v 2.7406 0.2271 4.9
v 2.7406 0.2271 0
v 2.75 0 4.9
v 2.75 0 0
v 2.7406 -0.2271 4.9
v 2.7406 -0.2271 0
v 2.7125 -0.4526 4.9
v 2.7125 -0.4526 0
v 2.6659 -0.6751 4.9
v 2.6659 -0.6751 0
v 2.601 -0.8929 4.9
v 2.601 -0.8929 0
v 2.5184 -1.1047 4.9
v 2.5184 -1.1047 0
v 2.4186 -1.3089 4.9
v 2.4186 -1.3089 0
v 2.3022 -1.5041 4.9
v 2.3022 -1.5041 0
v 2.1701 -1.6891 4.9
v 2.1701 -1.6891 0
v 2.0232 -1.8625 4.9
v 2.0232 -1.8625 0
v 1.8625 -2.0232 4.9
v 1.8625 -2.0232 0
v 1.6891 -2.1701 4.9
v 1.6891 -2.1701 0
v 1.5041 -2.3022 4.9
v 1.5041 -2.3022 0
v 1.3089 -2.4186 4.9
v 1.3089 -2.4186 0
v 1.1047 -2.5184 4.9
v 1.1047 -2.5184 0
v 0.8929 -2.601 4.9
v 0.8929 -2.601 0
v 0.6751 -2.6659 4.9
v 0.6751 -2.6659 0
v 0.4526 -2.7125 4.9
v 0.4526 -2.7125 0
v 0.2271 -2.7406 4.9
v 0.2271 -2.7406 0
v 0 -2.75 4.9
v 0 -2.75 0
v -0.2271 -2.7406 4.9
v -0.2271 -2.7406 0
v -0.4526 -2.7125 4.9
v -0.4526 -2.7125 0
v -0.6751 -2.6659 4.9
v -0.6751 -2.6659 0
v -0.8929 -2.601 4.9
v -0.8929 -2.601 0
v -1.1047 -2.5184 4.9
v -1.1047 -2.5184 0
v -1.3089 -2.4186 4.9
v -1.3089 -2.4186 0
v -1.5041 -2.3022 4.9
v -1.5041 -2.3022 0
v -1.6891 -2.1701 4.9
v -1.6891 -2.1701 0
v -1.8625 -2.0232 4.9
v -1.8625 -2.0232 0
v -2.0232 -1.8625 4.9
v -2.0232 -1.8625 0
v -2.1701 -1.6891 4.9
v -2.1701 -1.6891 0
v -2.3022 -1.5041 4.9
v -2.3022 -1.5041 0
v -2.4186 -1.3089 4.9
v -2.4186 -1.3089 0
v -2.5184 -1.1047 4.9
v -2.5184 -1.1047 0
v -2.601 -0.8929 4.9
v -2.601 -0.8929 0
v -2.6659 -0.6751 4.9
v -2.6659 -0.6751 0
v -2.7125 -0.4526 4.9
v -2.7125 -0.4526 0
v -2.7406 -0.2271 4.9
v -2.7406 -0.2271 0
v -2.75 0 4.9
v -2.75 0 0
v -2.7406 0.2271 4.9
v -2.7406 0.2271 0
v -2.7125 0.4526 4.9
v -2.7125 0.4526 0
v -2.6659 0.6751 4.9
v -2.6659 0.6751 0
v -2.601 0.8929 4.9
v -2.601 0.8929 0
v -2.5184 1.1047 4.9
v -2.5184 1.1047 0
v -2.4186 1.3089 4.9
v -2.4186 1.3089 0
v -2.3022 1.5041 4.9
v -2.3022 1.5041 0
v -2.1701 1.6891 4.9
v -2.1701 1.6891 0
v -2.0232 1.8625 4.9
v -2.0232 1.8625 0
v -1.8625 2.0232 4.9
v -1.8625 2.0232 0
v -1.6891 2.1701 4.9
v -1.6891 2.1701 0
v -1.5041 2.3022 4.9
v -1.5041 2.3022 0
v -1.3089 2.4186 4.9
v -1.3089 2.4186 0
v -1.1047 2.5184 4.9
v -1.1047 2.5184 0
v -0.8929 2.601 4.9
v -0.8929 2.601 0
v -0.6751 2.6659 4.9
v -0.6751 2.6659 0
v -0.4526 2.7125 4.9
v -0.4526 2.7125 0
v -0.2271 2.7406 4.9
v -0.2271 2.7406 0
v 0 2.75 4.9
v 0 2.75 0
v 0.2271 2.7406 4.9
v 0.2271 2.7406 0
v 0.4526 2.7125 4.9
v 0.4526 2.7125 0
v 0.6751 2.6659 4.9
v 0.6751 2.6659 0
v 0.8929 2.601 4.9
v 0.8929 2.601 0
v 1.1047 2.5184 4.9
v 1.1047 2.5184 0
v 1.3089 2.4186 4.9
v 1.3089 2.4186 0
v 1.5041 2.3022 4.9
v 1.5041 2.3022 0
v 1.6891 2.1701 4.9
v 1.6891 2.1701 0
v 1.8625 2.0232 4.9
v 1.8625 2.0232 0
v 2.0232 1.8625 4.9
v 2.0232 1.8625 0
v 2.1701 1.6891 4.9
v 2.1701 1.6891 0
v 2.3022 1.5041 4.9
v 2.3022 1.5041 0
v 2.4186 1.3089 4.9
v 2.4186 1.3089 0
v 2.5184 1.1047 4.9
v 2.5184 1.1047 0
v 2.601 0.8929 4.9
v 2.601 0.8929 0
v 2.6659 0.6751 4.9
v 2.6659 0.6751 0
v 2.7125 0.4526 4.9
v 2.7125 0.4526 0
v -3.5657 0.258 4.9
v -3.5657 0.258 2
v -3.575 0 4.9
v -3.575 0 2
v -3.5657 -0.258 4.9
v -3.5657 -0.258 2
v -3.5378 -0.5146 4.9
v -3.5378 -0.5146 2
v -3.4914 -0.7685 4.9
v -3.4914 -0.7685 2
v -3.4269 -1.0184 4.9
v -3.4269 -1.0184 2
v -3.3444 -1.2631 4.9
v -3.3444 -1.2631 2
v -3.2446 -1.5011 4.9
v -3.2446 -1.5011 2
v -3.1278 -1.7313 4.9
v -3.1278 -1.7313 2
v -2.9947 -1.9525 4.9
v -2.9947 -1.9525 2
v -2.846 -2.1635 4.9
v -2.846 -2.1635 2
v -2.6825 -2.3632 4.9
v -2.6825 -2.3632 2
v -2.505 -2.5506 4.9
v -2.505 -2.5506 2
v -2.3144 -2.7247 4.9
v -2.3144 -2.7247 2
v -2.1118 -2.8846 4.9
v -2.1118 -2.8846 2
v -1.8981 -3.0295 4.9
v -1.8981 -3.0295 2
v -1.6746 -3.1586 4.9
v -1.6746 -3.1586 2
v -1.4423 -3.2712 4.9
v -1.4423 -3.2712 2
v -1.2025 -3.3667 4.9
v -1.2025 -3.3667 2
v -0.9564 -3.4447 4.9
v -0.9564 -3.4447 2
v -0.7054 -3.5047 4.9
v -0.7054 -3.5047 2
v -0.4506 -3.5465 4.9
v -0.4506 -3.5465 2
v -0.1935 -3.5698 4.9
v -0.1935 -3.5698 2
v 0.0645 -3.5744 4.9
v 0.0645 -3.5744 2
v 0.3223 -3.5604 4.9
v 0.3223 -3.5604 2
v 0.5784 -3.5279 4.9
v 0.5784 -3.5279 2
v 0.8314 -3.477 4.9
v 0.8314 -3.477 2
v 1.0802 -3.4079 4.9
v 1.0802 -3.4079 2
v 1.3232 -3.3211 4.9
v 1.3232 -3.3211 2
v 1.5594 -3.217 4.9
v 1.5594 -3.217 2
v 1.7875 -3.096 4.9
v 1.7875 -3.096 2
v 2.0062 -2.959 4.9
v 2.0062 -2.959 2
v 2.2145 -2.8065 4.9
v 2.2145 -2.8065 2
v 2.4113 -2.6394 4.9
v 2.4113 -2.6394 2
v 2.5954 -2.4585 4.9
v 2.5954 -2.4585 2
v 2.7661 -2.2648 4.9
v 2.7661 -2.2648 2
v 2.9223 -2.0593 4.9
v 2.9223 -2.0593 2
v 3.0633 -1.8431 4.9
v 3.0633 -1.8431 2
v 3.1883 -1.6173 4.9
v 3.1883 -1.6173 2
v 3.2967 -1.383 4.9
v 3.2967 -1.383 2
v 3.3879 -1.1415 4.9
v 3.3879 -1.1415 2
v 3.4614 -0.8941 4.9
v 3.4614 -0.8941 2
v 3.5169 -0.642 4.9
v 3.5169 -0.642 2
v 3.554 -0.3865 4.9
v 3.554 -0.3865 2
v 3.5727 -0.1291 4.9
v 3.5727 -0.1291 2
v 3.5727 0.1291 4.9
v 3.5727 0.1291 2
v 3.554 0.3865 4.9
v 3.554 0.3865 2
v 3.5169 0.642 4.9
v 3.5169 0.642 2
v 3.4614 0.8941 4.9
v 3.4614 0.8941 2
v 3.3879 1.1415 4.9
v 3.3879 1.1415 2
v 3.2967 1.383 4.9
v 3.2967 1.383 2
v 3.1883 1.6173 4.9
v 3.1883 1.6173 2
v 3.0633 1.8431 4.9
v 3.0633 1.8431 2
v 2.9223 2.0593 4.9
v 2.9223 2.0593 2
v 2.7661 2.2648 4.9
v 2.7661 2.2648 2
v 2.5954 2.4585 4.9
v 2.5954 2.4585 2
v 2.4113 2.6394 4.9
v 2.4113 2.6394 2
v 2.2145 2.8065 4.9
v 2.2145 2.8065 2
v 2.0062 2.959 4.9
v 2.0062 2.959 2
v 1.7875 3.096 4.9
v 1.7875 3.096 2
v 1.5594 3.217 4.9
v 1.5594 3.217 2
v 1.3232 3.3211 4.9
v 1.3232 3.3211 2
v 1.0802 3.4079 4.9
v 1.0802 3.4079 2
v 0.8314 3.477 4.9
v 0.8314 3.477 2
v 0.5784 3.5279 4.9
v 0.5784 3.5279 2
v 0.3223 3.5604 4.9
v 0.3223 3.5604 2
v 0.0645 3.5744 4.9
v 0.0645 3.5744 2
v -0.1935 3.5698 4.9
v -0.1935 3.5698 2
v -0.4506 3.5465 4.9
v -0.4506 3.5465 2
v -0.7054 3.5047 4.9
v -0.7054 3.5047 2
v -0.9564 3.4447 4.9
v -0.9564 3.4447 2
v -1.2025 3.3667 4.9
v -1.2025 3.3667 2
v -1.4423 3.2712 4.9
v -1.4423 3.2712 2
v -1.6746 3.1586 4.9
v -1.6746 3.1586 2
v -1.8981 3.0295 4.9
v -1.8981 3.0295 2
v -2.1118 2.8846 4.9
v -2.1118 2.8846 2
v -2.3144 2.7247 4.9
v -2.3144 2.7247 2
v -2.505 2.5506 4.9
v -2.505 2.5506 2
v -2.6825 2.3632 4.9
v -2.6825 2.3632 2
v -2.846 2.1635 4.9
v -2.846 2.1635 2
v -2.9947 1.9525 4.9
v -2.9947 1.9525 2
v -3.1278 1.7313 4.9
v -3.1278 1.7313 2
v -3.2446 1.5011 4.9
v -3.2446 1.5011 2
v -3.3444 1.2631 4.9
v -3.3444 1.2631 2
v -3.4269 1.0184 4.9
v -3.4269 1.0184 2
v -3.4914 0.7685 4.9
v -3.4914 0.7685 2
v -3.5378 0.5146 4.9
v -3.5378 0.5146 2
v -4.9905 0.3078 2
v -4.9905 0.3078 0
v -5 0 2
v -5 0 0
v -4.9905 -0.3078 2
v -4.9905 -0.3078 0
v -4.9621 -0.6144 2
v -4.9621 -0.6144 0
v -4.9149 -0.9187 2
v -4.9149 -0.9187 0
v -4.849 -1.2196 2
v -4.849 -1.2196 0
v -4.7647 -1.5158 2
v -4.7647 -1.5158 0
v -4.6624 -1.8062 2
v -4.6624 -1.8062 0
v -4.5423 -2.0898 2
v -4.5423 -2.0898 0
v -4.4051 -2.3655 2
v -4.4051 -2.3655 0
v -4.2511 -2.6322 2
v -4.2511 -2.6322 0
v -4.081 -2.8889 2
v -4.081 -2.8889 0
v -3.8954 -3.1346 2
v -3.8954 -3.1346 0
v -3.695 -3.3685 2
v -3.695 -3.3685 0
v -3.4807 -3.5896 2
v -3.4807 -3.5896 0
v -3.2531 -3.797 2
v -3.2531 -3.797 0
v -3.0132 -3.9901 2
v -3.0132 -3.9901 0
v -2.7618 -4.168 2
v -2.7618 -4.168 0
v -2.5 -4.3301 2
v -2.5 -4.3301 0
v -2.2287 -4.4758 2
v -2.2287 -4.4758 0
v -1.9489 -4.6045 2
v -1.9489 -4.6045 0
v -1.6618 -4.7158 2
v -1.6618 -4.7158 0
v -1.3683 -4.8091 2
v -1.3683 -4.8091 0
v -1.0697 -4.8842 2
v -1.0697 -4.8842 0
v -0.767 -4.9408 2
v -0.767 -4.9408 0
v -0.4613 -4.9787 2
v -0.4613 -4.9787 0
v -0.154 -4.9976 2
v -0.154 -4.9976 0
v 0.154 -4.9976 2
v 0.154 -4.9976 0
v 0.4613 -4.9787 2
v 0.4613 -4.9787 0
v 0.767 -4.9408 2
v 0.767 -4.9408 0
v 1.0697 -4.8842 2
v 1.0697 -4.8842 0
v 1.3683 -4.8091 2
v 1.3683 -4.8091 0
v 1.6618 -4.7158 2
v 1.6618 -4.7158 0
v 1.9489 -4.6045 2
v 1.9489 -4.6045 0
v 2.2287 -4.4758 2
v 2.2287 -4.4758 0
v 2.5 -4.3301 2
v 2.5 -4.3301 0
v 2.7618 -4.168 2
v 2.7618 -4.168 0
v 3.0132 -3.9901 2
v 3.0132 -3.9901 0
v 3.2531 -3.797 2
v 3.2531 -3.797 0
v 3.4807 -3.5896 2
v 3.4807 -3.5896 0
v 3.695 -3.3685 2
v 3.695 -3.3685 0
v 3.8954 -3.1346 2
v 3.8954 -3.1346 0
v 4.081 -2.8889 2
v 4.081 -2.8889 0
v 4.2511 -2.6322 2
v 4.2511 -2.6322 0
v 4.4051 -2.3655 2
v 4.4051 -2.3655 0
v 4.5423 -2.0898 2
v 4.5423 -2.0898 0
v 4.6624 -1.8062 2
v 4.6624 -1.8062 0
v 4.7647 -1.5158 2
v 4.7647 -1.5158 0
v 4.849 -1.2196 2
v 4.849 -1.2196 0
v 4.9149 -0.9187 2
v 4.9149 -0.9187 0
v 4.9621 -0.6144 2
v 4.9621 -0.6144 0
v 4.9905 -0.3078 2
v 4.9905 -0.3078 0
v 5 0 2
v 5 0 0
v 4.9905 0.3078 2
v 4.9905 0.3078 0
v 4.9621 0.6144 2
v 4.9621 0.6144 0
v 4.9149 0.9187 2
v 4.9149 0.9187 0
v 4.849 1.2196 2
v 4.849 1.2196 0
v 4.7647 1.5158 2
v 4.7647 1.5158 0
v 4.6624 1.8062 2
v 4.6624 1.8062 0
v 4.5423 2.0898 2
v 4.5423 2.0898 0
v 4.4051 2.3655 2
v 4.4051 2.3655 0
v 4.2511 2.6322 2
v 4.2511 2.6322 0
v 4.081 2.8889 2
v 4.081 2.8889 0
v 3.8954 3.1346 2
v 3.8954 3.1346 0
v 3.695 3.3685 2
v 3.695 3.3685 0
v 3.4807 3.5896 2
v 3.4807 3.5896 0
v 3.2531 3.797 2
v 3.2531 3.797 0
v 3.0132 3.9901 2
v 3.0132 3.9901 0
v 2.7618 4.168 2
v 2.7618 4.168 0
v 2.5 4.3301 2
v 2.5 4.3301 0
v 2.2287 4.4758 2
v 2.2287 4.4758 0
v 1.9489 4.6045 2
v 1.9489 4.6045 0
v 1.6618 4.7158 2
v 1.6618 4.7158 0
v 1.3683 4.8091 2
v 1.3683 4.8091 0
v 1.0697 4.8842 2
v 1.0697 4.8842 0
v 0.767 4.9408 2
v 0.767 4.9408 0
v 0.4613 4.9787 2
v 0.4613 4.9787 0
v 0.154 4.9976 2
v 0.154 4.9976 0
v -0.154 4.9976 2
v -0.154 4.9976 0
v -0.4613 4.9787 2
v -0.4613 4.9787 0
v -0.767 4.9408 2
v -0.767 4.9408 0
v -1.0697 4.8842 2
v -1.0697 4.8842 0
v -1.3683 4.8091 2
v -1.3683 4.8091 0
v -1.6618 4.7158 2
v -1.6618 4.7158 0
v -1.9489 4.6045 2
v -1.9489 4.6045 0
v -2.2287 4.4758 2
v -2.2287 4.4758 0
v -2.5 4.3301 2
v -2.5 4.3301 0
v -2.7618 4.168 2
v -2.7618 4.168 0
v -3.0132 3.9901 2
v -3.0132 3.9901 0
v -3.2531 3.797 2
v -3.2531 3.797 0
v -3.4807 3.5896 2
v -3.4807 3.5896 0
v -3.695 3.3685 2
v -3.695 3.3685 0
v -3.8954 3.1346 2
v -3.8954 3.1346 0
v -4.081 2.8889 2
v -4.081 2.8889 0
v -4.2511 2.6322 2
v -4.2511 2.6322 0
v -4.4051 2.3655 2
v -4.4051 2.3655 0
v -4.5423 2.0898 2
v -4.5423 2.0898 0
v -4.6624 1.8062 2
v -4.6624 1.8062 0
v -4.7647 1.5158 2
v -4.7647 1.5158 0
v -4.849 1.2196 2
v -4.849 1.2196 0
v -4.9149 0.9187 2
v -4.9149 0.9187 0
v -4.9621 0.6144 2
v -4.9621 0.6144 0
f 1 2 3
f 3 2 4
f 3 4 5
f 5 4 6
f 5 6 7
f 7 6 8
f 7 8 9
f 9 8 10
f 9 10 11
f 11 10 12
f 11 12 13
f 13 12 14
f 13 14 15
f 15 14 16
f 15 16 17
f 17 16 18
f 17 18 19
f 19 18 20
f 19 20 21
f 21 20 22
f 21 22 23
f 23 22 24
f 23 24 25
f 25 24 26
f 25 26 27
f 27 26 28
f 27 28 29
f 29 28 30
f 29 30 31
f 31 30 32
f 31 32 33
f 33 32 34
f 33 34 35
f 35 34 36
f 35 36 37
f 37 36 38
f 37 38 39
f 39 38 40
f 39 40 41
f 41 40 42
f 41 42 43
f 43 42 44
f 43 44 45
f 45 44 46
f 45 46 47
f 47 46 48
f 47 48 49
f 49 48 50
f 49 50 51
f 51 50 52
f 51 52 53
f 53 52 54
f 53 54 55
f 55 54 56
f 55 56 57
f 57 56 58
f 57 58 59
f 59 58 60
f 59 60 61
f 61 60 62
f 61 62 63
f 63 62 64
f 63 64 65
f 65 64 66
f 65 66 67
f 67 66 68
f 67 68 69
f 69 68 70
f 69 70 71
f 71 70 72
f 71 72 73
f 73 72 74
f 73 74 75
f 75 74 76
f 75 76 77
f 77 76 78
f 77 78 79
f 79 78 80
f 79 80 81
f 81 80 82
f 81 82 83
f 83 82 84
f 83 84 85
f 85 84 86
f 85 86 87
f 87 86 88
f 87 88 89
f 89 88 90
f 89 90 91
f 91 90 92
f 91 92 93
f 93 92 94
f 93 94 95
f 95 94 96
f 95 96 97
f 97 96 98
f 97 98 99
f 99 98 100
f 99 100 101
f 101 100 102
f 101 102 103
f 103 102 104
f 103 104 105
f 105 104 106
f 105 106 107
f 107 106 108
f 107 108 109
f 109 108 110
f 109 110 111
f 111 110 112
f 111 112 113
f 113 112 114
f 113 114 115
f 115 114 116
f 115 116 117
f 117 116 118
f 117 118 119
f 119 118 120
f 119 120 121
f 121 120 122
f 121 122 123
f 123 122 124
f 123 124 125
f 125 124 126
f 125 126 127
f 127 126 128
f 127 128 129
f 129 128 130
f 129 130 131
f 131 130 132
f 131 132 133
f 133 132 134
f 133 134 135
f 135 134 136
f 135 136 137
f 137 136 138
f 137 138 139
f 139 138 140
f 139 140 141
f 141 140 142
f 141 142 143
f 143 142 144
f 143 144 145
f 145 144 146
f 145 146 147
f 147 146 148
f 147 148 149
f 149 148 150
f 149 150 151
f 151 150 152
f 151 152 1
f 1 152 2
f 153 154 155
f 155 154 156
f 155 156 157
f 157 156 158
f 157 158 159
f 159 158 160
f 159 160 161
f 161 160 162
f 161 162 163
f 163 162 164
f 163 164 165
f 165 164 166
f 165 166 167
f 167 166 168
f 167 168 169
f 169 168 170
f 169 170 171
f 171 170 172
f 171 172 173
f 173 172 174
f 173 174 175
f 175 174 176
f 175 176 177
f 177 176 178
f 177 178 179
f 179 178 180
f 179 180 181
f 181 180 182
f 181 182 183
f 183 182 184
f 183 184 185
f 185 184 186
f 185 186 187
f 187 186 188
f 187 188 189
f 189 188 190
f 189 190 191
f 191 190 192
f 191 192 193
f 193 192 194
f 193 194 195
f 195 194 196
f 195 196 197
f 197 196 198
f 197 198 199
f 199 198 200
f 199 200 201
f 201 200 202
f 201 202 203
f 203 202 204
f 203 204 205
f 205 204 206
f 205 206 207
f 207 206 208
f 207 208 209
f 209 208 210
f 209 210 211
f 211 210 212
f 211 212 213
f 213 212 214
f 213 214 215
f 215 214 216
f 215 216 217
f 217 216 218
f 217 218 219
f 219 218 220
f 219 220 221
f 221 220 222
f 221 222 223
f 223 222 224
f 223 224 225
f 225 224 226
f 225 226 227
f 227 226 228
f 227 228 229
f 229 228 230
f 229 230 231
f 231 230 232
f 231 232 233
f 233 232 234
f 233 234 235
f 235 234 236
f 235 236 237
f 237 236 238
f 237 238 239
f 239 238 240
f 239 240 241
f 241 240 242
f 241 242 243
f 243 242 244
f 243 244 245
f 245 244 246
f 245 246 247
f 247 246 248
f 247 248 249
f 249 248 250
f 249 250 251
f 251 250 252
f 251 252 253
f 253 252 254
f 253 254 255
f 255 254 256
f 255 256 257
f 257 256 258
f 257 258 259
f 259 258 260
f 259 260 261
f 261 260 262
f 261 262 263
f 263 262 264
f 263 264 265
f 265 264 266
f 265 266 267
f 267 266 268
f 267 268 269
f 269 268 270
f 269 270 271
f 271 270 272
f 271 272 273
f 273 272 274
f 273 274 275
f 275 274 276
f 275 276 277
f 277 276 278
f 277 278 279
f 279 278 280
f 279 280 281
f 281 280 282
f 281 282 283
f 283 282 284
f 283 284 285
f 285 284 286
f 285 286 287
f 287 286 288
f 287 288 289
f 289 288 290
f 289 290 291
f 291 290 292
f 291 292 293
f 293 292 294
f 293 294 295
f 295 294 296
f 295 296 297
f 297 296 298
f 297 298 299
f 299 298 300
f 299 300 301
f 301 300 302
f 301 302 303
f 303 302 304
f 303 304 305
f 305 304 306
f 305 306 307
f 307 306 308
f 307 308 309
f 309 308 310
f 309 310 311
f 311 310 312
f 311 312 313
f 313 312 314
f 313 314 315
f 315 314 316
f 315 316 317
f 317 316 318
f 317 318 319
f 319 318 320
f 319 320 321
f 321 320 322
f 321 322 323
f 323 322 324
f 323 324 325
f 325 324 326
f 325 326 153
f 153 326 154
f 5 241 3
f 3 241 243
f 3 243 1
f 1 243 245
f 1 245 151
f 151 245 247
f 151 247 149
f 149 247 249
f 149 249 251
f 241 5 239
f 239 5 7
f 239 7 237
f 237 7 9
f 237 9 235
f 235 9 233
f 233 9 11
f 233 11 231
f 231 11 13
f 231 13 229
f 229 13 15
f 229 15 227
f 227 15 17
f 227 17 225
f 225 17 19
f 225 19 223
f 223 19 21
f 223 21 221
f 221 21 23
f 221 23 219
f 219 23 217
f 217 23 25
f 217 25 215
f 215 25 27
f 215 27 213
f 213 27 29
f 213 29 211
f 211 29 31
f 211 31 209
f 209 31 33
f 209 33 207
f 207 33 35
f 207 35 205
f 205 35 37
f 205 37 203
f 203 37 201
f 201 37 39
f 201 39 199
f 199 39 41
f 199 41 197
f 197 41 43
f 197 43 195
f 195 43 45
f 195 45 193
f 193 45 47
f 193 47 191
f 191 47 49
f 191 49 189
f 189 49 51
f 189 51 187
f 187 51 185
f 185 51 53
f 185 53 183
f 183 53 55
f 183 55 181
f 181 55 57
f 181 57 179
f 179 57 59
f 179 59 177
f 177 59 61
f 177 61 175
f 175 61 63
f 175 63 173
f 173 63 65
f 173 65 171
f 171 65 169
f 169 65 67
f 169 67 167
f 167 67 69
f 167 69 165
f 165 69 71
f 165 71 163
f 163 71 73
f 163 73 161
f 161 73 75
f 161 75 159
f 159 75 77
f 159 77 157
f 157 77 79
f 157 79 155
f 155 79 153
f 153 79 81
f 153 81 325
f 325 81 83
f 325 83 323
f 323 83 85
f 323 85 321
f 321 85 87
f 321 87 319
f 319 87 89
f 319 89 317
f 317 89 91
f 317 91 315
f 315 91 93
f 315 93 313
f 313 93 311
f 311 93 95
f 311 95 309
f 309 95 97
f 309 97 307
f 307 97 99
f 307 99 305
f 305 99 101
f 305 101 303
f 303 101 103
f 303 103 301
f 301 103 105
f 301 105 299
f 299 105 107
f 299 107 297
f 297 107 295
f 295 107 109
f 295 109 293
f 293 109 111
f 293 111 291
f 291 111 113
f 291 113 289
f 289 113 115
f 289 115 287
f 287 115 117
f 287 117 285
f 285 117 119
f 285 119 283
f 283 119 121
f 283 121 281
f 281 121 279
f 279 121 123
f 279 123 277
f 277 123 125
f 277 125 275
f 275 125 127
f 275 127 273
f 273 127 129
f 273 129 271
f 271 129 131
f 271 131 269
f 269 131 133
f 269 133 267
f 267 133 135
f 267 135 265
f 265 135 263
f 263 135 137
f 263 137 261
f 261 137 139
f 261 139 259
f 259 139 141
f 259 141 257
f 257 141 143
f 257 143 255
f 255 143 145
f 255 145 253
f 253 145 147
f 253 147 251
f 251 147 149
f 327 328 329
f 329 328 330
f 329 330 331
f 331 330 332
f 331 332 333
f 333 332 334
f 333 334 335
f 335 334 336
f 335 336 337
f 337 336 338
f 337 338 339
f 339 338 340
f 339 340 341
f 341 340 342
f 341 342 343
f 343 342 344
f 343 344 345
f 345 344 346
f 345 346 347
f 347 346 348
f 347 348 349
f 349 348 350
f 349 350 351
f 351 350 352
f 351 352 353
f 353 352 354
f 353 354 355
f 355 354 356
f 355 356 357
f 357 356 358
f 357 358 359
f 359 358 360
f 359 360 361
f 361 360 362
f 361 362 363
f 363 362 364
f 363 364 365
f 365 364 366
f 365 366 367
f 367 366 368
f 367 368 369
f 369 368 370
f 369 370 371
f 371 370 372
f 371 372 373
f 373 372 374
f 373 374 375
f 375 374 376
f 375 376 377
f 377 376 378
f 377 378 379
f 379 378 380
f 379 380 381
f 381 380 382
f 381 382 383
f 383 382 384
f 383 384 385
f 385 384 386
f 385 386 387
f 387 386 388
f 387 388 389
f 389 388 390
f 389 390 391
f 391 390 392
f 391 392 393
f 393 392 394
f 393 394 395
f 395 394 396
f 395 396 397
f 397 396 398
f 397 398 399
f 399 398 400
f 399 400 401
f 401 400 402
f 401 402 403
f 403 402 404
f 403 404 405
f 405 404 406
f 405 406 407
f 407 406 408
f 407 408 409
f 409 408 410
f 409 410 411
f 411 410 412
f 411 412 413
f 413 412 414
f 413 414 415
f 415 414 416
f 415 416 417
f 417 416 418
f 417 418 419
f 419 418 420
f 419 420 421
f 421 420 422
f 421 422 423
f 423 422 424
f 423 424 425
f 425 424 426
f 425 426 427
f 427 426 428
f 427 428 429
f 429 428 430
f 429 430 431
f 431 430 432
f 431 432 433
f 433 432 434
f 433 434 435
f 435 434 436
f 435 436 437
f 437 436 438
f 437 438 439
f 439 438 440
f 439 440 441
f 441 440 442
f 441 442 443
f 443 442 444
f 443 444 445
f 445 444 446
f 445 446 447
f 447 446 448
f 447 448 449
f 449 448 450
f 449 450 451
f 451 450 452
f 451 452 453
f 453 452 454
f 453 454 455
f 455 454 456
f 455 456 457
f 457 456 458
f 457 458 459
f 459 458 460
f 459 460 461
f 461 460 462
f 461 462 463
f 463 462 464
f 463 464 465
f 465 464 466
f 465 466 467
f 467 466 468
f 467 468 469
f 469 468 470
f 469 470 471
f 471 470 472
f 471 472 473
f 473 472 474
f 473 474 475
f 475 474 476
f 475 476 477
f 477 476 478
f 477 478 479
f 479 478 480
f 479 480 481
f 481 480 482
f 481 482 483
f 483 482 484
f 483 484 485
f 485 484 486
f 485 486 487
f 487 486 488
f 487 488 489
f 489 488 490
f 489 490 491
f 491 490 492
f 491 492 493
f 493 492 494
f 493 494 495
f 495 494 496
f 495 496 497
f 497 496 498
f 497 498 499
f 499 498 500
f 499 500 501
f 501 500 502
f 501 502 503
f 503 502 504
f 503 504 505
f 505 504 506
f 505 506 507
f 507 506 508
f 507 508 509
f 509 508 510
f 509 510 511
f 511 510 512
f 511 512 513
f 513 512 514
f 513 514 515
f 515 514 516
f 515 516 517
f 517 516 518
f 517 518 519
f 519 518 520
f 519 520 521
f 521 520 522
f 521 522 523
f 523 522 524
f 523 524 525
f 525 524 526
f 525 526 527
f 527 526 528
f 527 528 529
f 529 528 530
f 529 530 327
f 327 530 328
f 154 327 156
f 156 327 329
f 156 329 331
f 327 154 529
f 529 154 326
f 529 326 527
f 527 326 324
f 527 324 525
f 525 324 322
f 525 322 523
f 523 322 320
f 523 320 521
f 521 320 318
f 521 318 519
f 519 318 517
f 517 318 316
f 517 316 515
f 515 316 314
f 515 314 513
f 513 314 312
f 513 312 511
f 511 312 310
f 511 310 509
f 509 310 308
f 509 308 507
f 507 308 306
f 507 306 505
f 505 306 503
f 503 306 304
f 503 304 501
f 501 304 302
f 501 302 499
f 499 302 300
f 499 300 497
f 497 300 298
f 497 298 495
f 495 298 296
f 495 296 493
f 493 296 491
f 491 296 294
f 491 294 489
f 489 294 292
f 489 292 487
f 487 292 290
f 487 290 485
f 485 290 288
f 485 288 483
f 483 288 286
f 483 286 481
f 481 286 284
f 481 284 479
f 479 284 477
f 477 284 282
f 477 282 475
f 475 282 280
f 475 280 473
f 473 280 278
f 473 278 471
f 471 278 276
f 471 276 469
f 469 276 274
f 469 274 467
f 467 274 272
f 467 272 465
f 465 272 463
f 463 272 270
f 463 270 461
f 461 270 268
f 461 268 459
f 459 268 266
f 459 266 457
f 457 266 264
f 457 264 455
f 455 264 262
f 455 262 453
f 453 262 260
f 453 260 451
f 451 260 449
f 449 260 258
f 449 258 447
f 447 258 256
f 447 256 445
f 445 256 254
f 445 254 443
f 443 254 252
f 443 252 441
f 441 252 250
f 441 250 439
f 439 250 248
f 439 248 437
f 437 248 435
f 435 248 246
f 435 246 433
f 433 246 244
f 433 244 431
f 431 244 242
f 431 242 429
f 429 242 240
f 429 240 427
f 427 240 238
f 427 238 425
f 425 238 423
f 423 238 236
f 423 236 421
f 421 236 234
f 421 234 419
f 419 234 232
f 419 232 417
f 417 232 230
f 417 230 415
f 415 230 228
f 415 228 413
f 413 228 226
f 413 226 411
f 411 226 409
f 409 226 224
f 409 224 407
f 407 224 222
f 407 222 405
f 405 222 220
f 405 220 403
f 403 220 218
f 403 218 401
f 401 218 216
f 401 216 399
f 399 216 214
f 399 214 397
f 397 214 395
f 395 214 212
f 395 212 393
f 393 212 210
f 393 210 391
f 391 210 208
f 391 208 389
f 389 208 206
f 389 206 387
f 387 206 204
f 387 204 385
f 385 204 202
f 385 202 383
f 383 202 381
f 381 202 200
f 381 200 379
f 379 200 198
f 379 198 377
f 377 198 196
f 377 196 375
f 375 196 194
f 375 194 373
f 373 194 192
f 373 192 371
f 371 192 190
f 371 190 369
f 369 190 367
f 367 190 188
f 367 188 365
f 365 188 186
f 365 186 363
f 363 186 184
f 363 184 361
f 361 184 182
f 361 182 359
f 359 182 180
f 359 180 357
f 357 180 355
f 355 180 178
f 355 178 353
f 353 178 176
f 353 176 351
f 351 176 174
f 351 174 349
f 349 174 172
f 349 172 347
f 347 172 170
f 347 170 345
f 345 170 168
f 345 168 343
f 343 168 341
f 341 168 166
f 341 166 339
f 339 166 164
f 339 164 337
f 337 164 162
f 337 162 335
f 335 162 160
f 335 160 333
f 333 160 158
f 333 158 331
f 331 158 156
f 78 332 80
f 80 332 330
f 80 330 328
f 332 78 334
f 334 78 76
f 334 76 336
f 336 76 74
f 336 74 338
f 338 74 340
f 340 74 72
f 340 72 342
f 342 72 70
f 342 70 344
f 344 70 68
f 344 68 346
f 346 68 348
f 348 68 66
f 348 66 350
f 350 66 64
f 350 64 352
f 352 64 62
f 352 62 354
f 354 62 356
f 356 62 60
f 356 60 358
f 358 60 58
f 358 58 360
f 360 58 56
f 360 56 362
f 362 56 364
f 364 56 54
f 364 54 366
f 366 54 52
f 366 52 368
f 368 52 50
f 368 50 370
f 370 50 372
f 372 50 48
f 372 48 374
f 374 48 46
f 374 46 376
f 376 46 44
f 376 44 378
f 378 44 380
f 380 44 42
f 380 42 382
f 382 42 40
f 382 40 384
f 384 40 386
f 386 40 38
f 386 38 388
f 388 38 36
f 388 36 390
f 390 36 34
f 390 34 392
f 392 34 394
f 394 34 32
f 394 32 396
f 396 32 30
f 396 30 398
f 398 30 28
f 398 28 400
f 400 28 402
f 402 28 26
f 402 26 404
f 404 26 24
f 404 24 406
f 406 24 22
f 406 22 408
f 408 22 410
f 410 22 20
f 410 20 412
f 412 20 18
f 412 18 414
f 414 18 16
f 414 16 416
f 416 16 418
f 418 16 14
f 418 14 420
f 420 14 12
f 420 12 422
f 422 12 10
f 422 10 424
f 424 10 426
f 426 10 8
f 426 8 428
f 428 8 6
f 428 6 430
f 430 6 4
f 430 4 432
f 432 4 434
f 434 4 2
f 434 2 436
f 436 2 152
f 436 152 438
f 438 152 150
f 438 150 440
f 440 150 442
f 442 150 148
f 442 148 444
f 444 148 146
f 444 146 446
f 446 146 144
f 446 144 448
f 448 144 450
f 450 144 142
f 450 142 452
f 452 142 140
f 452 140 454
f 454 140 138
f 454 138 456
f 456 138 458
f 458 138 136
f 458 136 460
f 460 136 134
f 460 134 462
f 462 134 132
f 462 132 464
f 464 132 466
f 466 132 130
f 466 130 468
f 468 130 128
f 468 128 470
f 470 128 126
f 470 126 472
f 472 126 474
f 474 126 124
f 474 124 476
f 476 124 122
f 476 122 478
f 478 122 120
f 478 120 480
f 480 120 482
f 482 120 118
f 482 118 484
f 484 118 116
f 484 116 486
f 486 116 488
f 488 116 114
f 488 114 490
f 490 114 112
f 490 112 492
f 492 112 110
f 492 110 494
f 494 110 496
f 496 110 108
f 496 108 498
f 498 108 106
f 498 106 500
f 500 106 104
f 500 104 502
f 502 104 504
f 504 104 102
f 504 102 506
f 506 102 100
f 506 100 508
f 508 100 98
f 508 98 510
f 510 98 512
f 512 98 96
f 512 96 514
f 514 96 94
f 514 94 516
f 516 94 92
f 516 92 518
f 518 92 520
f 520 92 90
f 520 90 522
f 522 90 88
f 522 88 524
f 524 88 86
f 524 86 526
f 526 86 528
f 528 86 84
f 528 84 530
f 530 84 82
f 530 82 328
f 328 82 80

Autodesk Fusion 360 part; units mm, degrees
sketch "Sketch1" plane through (0, 0, 0) normal (0, 0, 1) x (1, 0, 0)
  circle A0 centre (0, 0) radius 5
  circle A1 centre (0, 0) radius 3.575
  dimension "d1" = 10
  dimension "d2" = 7.15
extrude "Extrude1" add sketch "Sketch1" along normal blind 2
extrude "Extrude2" add sketch "Sketch1" along normal blind 4.9 contours A1
hole "Hole1" at (0, 0, 0) direction (0, 0, 1) diameter 5.5 depth 10 tip angle 118
